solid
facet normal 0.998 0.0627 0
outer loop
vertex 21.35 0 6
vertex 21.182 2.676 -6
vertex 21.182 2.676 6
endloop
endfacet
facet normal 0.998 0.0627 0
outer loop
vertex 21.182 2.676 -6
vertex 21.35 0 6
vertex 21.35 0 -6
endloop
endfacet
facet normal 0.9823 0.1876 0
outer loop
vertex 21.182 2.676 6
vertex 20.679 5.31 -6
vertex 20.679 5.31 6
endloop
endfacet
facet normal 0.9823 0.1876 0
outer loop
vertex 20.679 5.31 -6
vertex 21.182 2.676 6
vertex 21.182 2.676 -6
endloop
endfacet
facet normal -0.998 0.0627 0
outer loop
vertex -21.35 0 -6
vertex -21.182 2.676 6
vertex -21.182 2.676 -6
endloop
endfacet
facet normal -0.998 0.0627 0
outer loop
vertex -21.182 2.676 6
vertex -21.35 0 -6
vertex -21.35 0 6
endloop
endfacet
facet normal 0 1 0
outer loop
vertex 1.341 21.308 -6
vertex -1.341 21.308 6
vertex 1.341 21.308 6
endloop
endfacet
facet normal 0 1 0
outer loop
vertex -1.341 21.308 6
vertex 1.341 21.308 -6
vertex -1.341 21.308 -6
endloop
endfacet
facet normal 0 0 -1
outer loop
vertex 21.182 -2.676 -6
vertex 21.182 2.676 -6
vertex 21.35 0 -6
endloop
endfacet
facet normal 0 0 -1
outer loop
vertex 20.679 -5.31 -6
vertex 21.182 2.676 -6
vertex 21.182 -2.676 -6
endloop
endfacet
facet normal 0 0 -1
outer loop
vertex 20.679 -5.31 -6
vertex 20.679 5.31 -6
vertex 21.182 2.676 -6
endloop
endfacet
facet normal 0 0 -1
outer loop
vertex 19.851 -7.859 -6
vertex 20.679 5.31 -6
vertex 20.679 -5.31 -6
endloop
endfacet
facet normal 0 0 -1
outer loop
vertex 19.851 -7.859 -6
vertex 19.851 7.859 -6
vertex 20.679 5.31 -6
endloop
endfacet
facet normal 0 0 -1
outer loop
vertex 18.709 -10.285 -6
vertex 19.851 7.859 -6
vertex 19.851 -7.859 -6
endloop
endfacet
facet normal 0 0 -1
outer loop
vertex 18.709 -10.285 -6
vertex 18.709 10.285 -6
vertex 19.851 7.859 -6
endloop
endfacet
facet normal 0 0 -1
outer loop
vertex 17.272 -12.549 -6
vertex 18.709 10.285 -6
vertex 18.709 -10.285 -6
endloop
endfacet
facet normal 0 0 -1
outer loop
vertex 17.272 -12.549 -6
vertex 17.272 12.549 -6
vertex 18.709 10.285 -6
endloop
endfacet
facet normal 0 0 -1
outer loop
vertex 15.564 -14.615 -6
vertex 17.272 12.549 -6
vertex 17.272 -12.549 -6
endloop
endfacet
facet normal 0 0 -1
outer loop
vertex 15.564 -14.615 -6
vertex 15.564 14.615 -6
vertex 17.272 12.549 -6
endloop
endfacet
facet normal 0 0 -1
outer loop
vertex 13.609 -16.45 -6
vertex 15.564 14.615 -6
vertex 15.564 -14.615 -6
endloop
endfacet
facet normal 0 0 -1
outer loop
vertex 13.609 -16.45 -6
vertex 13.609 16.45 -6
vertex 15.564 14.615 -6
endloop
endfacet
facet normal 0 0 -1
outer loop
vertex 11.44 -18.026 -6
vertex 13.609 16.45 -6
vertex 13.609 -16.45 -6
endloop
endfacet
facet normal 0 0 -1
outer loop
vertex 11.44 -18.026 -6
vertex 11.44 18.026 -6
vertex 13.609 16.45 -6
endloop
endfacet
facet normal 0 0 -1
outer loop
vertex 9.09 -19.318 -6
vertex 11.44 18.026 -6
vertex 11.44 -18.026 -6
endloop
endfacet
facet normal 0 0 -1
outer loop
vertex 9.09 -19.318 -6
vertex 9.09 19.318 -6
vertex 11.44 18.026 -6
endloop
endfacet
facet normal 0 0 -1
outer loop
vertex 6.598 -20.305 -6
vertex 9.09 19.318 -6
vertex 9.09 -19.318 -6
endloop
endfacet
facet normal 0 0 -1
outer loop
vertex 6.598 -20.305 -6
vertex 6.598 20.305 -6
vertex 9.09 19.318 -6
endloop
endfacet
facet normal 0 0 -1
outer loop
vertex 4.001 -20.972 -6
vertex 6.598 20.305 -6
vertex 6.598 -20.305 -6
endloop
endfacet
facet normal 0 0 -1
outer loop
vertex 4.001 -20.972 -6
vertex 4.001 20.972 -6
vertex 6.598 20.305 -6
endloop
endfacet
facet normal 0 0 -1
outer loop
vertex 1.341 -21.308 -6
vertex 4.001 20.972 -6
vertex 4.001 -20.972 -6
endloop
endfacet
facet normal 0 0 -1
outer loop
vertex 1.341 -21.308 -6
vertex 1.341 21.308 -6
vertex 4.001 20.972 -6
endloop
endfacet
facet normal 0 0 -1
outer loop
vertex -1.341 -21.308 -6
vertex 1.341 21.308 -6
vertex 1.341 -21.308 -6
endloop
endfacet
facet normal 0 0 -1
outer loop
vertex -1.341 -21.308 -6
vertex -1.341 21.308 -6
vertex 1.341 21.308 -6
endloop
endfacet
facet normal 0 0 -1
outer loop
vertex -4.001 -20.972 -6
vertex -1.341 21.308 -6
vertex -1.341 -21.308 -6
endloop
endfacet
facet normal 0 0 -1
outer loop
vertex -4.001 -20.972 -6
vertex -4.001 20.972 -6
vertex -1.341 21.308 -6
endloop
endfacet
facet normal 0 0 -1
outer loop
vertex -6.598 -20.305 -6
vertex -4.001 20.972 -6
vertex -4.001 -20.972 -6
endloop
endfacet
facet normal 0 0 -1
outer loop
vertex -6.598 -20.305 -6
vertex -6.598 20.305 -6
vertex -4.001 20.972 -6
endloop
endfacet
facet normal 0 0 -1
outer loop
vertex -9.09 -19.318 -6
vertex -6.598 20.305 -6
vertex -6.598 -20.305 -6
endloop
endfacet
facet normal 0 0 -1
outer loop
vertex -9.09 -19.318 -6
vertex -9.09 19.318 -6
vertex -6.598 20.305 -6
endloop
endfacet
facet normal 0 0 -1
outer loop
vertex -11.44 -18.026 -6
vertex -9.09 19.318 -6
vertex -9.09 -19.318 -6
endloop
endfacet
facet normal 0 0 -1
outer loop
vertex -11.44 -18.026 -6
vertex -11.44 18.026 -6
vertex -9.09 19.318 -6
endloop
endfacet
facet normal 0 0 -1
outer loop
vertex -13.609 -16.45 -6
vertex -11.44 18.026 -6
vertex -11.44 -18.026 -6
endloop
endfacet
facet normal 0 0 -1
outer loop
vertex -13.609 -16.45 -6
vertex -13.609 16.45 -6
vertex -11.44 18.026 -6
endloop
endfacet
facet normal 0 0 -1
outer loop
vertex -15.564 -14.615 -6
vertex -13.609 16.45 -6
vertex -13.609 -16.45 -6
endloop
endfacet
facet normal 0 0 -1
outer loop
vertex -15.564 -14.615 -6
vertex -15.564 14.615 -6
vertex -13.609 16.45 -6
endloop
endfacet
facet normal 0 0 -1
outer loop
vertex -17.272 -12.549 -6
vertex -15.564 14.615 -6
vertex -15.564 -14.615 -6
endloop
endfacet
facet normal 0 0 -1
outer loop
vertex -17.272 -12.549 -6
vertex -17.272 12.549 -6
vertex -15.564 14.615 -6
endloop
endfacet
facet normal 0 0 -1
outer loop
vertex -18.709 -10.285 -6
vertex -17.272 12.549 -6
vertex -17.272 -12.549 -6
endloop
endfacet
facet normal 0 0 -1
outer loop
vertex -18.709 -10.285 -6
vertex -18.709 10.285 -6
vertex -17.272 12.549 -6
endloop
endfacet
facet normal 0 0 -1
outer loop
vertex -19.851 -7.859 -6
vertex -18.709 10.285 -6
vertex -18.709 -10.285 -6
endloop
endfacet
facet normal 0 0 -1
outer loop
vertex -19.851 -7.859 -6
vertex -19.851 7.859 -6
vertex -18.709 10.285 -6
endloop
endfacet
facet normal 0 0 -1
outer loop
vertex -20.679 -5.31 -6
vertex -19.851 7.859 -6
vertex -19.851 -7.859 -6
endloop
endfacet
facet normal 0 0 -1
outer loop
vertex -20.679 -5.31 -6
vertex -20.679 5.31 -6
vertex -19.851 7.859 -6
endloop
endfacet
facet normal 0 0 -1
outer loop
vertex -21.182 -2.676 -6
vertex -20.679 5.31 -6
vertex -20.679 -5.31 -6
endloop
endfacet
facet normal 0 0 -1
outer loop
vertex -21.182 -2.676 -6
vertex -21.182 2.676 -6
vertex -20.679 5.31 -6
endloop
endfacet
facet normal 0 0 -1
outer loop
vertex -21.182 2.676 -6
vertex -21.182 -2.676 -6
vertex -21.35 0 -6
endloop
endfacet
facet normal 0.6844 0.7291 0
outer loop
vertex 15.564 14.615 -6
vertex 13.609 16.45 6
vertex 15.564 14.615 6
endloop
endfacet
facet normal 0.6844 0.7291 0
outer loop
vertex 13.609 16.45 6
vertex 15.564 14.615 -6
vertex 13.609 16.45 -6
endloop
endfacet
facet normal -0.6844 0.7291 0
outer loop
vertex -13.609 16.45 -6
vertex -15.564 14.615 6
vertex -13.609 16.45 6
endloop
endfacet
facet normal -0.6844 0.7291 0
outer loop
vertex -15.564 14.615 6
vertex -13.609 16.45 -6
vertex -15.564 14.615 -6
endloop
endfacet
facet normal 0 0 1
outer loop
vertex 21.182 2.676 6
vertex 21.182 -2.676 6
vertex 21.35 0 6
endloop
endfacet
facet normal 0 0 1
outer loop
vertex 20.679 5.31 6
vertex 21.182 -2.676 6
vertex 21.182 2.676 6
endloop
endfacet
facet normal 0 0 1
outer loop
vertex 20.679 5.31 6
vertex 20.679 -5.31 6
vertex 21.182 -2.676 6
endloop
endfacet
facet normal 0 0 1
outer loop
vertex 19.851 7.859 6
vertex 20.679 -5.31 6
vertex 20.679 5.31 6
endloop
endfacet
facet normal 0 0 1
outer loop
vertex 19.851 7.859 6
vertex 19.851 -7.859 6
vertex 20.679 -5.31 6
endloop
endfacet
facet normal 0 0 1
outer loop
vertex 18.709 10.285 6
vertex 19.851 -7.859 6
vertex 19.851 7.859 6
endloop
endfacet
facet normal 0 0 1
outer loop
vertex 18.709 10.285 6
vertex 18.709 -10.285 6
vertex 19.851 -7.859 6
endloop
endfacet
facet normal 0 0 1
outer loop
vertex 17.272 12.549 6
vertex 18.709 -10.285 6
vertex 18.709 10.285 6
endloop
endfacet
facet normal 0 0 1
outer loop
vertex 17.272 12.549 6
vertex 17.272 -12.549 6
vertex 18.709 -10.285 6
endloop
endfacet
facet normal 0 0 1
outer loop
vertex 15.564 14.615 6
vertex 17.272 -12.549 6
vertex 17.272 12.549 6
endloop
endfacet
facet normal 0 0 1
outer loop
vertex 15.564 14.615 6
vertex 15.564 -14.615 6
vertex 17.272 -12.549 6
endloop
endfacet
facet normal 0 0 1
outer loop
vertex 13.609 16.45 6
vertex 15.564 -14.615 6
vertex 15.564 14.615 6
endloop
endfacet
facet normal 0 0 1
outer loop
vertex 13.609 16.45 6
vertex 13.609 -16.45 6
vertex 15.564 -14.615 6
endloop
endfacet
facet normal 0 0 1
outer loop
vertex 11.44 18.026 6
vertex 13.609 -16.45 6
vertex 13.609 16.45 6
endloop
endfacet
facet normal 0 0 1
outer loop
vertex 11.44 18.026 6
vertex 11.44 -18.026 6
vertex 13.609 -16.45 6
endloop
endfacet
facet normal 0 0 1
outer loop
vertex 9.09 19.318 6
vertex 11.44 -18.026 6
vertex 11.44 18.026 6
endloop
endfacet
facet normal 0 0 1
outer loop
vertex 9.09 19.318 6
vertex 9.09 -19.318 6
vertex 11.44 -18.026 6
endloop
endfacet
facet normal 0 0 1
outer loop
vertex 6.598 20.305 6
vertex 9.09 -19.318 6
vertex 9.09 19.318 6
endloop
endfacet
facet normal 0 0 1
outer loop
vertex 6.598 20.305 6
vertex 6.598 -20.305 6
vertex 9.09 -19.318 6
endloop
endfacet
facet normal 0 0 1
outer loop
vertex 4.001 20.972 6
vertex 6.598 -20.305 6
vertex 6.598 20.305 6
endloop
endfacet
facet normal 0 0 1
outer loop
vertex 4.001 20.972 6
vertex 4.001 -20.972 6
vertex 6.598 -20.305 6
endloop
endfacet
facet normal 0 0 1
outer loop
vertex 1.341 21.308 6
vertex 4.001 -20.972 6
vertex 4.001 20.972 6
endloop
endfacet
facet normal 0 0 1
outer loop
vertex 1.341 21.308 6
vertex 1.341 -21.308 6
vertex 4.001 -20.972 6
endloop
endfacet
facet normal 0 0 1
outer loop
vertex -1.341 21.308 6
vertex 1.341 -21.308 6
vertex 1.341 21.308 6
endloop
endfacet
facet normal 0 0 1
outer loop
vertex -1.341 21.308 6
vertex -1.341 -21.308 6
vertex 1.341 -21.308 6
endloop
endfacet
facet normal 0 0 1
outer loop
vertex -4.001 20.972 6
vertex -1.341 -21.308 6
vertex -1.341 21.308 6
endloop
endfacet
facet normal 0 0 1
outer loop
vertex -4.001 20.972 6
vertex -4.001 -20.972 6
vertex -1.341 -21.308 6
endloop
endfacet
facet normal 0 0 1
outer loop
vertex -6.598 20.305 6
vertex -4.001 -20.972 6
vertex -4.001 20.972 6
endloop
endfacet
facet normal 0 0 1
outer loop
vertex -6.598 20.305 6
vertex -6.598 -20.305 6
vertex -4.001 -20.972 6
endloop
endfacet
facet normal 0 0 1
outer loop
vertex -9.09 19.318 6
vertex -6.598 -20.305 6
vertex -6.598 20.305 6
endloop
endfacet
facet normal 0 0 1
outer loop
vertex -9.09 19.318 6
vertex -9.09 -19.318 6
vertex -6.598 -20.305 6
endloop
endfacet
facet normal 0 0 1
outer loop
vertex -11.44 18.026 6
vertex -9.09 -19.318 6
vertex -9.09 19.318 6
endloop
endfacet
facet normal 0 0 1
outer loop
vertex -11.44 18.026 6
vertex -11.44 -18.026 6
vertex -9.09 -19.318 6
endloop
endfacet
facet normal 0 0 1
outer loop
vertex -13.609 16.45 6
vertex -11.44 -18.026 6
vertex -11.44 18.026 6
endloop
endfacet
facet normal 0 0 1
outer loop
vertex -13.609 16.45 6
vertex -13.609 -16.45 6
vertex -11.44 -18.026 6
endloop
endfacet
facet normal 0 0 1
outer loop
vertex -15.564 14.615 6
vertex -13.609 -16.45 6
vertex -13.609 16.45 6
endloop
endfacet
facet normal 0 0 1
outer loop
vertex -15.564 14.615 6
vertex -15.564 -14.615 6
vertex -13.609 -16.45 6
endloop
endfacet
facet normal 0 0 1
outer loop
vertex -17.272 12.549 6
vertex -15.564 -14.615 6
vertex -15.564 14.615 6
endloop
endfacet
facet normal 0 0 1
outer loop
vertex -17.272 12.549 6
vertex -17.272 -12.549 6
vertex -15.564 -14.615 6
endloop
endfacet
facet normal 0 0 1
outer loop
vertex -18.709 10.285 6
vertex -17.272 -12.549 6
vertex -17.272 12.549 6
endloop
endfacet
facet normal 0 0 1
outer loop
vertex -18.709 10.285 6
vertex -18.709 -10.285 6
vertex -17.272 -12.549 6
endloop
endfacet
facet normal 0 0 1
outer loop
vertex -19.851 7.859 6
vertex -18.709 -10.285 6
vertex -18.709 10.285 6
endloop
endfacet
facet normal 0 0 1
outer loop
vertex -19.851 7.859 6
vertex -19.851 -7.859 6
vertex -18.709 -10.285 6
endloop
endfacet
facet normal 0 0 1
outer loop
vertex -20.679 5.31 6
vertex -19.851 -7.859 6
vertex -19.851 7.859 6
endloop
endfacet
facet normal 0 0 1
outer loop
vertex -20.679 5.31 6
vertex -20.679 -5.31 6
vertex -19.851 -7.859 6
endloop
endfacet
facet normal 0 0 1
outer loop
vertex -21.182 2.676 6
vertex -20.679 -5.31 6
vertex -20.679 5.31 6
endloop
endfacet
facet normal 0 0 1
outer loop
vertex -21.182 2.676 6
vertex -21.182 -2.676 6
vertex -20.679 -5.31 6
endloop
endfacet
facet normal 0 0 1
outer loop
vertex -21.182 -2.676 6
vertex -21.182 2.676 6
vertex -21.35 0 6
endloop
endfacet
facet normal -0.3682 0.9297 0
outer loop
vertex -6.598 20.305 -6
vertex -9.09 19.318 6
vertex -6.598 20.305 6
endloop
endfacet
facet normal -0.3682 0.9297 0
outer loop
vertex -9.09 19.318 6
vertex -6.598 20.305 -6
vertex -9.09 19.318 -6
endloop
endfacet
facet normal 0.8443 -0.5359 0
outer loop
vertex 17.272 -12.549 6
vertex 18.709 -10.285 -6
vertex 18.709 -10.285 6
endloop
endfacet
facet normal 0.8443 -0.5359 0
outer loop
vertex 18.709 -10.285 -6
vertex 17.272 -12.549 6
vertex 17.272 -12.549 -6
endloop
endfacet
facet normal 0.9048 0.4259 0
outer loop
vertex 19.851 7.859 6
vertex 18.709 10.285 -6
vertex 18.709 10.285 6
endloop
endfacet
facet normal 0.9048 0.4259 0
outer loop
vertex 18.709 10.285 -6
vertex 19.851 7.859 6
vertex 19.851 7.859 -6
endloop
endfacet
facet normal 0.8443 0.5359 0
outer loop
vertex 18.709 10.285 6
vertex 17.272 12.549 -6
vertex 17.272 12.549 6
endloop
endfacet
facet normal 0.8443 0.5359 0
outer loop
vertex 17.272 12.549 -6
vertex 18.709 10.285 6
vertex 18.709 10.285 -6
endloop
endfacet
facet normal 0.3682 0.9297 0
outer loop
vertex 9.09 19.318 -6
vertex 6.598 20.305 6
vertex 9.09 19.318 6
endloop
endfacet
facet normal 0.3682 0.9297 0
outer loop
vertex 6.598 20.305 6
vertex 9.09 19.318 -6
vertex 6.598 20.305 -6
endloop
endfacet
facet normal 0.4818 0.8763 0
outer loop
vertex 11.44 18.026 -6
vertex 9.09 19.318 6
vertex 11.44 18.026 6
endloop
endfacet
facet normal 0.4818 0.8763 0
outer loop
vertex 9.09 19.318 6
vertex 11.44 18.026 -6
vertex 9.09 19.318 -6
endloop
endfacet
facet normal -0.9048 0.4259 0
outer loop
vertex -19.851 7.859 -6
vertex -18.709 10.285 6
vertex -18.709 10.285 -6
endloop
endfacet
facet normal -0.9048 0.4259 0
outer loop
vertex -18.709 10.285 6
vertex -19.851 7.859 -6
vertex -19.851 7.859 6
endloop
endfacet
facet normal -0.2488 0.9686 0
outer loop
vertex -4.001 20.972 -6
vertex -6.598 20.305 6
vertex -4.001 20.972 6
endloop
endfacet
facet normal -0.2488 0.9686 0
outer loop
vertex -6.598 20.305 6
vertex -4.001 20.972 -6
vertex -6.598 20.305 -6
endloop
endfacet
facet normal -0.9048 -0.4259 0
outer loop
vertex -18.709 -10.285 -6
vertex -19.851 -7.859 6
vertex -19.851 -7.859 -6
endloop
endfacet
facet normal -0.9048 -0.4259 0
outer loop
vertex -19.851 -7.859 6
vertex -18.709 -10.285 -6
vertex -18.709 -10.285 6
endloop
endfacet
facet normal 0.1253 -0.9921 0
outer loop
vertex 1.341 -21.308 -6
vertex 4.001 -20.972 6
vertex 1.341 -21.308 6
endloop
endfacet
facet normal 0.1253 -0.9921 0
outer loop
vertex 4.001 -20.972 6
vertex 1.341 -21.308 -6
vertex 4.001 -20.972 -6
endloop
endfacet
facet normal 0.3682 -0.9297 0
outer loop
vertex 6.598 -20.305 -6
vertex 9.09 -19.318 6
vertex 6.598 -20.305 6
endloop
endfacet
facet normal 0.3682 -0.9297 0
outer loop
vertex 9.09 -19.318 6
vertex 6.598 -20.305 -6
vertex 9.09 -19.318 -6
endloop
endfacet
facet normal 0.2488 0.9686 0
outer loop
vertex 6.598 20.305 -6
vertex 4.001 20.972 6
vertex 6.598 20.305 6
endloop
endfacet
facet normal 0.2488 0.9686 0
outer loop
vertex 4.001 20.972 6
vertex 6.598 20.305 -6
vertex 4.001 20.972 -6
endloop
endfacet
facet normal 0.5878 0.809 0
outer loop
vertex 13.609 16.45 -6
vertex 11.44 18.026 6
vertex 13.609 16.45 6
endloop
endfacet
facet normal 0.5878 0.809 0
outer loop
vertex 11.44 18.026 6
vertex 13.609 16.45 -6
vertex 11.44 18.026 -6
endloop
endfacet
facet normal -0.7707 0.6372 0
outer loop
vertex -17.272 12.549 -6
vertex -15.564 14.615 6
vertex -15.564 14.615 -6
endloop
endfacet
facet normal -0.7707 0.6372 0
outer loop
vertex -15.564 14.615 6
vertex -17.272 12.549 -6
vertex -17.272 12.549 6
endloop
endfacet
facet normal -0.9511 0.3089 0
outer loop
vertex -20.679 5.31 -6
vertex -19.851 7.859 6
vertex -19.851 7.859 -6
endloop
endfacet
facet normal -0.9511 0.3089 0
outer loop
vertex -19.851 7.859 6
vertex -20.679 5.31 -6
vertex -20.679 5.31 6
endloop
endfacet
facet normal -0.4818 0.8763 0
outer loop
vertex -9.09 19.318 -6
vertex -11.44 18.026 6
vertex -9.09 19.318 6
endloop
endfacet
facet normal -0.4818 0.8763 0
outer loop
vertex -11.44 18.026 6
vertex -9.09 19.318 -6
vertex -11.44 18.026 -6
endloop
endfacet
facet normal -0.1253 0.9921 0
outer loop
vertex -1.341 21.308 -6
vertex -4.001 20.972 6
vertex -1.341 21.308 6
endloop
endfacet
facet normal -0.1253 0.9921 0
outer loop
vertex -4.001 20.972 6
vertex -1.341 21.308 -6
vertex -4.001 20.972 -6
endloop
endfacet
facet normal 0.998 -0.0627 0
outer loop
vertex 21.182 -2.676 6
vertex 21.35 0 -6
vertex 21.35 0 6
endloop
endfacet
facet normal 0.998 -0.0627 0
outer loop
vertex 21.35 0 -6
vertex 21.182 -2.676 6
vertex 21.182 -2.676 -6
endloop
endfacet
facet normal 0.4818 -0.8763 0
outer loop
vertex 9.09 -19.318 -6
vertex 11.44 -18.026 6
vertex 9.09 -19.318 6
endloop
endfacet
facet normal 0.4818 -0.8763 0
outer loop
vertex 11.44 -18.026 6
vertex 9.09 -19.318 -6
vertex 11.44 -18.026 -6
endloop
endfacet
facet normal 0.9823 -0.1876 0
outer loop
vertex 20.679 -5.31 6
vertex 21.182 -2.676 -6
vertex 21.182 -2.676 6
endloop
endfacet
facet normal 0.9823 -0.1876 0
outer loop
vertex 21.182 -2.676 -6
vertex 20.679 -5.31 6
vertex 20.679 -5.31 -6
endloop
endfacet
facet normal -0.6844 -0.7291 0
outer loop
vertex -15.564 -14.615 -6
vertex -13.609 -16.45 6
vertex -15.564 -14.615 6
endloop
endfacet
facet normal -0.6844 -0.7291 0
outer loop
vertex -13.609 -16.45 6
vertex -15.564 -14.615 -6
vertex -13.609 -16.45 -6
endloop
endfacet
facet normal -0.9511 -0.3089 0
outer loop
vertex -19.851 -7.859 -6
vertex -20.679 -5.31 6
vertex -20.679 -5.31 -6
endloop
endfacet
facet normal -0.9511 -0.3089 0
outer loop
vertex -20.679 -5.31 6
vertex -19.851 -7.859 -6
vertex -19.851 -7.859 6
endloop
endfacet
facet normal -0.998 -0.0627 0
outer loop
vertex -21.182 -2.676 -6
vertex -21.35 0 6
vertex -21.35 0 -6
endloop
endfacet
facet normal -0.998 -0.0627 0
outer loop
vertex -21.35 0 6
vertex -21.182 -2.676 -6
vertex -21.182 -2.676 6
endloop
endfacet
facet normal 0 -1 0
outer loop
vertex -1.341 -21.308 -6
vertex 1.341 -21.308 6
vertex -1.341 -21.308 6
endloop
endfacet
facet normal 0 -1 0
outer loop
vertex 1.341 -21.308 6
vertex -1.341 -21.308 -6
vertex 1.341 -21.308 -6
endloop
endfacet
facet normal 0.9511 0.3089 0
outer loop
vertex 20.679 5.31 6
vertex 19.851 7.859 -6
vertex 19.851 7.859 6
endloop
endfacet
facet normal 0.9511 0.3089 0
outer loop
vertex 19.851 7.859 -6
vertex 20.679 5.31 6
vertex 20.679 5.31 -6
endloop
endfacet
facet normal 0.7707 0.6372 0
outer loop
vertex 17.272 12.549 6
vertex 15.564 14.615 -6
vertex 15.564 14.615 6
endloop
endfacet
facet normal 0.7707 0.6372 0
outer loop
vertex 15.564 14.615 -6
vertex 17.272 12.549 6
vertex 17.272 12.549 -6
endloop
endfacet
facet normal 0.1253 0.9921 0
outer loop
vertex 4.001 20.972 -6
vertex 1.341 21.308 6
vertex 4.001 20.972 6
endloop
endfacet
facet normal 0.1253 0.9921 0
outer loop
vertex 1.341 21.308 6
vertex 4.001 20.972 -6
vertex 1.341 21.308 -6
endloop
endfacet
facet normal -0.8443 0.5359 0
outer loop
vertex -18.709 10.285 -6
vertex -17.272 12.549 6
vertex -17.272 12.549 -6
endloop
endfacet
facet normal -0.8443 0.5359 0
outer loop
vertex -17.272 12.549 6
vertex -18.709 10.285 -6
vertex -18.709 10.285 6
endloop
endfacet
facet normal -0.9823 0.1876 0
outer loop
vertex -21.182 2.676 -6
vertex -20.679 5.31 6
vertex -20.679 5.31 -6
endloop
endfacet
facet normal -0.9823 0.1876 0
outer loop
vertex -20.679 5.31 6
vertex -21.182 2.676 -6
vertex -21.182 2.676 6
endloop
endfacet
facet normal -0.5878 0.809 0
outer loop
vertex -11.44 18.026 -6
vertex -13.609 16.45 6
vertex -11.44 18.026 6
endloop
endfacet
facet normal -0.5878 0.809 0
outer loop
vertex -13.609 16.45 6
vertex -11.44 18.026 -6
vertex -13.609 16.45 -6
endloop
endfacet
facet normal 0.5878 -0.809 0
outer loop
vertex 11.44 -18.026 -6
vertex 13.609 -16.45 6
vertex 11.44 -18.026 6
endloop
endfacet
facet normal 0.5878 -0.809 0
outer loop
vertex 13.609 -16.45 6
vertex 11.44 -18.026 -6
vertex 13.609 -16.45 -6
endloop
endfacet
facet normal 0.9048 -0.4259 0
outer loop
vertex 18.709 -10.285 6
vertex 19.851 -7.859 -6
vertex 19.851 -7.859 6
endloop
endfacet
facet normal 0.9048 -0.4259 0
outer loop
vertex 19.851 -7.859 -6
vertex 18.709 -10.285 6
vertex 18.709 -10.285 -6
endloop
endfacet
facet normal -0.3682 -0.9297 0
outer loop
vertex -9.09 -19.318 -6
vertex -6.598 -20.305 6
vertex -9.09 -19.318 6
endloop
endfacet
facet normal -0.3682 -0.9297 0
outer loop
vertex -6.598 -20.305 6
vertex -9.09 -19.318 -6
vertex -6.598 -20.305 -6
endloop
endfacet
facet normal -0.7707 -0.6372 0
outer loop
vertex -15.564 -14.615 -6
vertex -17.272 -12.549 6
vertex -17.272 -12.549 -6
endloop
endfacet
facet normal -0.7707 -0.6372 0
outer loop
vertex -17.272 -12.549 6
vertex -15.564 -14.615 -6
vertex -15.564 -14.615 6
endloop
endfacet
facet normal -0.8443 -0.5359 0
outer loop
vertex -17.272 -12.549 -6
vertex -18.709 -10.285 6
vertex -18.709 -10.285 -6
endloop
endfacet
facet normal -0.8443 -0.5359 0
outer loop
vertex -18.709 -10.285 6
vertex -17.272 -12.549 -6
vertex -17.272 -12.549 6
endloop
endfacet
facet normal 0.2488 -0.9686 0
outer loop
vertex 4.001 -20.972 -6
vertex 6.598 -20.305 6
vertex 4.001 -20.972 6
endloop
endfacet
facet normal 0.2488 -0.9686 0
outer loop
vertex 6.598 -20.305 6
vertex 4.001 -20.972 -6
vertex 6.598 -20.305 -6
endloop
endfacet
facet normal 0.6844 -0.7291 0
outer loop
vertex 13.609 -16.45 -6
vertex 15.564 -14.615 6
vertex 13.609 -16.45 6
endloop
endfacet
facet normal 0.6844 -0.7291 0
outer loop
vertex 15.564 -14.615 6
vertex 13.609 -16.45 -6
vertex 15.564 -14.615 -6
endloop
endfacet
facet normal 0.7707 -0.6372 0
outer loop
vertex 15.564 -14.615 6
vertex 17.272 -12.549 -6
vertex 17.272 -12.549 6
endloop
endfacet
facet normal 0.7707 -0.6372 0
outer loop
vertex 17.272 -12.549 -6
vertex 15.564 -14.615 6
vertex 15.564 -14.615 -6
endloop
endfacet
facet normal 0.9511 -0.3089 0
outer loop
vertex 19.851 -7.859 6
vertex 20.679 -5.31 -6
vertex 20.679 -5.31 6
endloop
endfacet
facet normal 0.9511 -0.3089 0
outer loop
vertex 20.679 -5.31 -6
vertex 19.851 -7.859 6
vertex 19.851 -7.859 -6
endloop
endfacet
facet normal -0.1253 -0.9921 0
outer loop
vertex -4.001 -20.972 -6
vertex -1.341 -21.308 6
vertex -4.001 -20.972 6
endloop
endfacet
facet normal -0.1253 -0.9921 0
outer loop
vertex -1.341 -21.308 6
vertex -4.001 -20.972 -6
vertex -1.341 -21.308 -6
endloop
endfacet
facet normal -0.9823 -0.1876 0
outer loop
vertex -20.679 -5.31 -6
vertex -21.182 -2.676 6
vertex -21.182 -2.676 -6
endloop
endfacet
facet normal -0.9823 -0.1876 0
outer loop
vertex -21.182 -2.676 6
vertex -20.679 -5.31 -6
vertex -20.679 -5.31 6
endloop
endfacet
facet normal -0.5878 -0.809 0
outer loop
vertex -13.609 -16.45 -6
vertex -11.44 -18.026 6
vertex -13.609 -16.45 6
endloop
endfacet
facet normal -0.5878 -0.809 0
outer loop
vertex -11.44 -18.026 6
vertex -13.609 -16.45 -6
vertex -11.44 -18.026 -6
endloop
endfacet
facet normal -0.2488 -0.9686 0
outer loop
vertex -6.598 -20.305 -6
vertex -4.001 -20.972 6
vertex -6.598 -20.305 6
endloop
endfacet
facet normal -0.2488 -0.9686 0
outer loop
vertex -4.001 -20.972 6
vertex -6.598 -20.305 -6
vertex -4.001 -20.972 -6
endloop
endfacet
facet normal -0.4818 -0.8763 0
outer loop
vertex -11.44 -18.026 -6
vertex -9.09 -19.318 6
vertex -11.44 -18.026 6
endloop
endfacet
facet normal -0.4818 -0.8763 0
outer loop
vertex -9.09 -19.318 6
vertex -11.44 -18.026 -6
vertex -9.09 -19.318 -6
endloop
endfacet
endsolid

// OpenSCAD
$fn = 50;


difference() {
	union() {
		translate(v = [0, 0, -6.0000000000]) {
			cylinder(h = 12, r = 21.3500000000);
		}
	}
	union() {
		translate(v = [0, 0, -100.0000000000]) {
			cylinder(h = 200, r = 0);
		}
	}
}
